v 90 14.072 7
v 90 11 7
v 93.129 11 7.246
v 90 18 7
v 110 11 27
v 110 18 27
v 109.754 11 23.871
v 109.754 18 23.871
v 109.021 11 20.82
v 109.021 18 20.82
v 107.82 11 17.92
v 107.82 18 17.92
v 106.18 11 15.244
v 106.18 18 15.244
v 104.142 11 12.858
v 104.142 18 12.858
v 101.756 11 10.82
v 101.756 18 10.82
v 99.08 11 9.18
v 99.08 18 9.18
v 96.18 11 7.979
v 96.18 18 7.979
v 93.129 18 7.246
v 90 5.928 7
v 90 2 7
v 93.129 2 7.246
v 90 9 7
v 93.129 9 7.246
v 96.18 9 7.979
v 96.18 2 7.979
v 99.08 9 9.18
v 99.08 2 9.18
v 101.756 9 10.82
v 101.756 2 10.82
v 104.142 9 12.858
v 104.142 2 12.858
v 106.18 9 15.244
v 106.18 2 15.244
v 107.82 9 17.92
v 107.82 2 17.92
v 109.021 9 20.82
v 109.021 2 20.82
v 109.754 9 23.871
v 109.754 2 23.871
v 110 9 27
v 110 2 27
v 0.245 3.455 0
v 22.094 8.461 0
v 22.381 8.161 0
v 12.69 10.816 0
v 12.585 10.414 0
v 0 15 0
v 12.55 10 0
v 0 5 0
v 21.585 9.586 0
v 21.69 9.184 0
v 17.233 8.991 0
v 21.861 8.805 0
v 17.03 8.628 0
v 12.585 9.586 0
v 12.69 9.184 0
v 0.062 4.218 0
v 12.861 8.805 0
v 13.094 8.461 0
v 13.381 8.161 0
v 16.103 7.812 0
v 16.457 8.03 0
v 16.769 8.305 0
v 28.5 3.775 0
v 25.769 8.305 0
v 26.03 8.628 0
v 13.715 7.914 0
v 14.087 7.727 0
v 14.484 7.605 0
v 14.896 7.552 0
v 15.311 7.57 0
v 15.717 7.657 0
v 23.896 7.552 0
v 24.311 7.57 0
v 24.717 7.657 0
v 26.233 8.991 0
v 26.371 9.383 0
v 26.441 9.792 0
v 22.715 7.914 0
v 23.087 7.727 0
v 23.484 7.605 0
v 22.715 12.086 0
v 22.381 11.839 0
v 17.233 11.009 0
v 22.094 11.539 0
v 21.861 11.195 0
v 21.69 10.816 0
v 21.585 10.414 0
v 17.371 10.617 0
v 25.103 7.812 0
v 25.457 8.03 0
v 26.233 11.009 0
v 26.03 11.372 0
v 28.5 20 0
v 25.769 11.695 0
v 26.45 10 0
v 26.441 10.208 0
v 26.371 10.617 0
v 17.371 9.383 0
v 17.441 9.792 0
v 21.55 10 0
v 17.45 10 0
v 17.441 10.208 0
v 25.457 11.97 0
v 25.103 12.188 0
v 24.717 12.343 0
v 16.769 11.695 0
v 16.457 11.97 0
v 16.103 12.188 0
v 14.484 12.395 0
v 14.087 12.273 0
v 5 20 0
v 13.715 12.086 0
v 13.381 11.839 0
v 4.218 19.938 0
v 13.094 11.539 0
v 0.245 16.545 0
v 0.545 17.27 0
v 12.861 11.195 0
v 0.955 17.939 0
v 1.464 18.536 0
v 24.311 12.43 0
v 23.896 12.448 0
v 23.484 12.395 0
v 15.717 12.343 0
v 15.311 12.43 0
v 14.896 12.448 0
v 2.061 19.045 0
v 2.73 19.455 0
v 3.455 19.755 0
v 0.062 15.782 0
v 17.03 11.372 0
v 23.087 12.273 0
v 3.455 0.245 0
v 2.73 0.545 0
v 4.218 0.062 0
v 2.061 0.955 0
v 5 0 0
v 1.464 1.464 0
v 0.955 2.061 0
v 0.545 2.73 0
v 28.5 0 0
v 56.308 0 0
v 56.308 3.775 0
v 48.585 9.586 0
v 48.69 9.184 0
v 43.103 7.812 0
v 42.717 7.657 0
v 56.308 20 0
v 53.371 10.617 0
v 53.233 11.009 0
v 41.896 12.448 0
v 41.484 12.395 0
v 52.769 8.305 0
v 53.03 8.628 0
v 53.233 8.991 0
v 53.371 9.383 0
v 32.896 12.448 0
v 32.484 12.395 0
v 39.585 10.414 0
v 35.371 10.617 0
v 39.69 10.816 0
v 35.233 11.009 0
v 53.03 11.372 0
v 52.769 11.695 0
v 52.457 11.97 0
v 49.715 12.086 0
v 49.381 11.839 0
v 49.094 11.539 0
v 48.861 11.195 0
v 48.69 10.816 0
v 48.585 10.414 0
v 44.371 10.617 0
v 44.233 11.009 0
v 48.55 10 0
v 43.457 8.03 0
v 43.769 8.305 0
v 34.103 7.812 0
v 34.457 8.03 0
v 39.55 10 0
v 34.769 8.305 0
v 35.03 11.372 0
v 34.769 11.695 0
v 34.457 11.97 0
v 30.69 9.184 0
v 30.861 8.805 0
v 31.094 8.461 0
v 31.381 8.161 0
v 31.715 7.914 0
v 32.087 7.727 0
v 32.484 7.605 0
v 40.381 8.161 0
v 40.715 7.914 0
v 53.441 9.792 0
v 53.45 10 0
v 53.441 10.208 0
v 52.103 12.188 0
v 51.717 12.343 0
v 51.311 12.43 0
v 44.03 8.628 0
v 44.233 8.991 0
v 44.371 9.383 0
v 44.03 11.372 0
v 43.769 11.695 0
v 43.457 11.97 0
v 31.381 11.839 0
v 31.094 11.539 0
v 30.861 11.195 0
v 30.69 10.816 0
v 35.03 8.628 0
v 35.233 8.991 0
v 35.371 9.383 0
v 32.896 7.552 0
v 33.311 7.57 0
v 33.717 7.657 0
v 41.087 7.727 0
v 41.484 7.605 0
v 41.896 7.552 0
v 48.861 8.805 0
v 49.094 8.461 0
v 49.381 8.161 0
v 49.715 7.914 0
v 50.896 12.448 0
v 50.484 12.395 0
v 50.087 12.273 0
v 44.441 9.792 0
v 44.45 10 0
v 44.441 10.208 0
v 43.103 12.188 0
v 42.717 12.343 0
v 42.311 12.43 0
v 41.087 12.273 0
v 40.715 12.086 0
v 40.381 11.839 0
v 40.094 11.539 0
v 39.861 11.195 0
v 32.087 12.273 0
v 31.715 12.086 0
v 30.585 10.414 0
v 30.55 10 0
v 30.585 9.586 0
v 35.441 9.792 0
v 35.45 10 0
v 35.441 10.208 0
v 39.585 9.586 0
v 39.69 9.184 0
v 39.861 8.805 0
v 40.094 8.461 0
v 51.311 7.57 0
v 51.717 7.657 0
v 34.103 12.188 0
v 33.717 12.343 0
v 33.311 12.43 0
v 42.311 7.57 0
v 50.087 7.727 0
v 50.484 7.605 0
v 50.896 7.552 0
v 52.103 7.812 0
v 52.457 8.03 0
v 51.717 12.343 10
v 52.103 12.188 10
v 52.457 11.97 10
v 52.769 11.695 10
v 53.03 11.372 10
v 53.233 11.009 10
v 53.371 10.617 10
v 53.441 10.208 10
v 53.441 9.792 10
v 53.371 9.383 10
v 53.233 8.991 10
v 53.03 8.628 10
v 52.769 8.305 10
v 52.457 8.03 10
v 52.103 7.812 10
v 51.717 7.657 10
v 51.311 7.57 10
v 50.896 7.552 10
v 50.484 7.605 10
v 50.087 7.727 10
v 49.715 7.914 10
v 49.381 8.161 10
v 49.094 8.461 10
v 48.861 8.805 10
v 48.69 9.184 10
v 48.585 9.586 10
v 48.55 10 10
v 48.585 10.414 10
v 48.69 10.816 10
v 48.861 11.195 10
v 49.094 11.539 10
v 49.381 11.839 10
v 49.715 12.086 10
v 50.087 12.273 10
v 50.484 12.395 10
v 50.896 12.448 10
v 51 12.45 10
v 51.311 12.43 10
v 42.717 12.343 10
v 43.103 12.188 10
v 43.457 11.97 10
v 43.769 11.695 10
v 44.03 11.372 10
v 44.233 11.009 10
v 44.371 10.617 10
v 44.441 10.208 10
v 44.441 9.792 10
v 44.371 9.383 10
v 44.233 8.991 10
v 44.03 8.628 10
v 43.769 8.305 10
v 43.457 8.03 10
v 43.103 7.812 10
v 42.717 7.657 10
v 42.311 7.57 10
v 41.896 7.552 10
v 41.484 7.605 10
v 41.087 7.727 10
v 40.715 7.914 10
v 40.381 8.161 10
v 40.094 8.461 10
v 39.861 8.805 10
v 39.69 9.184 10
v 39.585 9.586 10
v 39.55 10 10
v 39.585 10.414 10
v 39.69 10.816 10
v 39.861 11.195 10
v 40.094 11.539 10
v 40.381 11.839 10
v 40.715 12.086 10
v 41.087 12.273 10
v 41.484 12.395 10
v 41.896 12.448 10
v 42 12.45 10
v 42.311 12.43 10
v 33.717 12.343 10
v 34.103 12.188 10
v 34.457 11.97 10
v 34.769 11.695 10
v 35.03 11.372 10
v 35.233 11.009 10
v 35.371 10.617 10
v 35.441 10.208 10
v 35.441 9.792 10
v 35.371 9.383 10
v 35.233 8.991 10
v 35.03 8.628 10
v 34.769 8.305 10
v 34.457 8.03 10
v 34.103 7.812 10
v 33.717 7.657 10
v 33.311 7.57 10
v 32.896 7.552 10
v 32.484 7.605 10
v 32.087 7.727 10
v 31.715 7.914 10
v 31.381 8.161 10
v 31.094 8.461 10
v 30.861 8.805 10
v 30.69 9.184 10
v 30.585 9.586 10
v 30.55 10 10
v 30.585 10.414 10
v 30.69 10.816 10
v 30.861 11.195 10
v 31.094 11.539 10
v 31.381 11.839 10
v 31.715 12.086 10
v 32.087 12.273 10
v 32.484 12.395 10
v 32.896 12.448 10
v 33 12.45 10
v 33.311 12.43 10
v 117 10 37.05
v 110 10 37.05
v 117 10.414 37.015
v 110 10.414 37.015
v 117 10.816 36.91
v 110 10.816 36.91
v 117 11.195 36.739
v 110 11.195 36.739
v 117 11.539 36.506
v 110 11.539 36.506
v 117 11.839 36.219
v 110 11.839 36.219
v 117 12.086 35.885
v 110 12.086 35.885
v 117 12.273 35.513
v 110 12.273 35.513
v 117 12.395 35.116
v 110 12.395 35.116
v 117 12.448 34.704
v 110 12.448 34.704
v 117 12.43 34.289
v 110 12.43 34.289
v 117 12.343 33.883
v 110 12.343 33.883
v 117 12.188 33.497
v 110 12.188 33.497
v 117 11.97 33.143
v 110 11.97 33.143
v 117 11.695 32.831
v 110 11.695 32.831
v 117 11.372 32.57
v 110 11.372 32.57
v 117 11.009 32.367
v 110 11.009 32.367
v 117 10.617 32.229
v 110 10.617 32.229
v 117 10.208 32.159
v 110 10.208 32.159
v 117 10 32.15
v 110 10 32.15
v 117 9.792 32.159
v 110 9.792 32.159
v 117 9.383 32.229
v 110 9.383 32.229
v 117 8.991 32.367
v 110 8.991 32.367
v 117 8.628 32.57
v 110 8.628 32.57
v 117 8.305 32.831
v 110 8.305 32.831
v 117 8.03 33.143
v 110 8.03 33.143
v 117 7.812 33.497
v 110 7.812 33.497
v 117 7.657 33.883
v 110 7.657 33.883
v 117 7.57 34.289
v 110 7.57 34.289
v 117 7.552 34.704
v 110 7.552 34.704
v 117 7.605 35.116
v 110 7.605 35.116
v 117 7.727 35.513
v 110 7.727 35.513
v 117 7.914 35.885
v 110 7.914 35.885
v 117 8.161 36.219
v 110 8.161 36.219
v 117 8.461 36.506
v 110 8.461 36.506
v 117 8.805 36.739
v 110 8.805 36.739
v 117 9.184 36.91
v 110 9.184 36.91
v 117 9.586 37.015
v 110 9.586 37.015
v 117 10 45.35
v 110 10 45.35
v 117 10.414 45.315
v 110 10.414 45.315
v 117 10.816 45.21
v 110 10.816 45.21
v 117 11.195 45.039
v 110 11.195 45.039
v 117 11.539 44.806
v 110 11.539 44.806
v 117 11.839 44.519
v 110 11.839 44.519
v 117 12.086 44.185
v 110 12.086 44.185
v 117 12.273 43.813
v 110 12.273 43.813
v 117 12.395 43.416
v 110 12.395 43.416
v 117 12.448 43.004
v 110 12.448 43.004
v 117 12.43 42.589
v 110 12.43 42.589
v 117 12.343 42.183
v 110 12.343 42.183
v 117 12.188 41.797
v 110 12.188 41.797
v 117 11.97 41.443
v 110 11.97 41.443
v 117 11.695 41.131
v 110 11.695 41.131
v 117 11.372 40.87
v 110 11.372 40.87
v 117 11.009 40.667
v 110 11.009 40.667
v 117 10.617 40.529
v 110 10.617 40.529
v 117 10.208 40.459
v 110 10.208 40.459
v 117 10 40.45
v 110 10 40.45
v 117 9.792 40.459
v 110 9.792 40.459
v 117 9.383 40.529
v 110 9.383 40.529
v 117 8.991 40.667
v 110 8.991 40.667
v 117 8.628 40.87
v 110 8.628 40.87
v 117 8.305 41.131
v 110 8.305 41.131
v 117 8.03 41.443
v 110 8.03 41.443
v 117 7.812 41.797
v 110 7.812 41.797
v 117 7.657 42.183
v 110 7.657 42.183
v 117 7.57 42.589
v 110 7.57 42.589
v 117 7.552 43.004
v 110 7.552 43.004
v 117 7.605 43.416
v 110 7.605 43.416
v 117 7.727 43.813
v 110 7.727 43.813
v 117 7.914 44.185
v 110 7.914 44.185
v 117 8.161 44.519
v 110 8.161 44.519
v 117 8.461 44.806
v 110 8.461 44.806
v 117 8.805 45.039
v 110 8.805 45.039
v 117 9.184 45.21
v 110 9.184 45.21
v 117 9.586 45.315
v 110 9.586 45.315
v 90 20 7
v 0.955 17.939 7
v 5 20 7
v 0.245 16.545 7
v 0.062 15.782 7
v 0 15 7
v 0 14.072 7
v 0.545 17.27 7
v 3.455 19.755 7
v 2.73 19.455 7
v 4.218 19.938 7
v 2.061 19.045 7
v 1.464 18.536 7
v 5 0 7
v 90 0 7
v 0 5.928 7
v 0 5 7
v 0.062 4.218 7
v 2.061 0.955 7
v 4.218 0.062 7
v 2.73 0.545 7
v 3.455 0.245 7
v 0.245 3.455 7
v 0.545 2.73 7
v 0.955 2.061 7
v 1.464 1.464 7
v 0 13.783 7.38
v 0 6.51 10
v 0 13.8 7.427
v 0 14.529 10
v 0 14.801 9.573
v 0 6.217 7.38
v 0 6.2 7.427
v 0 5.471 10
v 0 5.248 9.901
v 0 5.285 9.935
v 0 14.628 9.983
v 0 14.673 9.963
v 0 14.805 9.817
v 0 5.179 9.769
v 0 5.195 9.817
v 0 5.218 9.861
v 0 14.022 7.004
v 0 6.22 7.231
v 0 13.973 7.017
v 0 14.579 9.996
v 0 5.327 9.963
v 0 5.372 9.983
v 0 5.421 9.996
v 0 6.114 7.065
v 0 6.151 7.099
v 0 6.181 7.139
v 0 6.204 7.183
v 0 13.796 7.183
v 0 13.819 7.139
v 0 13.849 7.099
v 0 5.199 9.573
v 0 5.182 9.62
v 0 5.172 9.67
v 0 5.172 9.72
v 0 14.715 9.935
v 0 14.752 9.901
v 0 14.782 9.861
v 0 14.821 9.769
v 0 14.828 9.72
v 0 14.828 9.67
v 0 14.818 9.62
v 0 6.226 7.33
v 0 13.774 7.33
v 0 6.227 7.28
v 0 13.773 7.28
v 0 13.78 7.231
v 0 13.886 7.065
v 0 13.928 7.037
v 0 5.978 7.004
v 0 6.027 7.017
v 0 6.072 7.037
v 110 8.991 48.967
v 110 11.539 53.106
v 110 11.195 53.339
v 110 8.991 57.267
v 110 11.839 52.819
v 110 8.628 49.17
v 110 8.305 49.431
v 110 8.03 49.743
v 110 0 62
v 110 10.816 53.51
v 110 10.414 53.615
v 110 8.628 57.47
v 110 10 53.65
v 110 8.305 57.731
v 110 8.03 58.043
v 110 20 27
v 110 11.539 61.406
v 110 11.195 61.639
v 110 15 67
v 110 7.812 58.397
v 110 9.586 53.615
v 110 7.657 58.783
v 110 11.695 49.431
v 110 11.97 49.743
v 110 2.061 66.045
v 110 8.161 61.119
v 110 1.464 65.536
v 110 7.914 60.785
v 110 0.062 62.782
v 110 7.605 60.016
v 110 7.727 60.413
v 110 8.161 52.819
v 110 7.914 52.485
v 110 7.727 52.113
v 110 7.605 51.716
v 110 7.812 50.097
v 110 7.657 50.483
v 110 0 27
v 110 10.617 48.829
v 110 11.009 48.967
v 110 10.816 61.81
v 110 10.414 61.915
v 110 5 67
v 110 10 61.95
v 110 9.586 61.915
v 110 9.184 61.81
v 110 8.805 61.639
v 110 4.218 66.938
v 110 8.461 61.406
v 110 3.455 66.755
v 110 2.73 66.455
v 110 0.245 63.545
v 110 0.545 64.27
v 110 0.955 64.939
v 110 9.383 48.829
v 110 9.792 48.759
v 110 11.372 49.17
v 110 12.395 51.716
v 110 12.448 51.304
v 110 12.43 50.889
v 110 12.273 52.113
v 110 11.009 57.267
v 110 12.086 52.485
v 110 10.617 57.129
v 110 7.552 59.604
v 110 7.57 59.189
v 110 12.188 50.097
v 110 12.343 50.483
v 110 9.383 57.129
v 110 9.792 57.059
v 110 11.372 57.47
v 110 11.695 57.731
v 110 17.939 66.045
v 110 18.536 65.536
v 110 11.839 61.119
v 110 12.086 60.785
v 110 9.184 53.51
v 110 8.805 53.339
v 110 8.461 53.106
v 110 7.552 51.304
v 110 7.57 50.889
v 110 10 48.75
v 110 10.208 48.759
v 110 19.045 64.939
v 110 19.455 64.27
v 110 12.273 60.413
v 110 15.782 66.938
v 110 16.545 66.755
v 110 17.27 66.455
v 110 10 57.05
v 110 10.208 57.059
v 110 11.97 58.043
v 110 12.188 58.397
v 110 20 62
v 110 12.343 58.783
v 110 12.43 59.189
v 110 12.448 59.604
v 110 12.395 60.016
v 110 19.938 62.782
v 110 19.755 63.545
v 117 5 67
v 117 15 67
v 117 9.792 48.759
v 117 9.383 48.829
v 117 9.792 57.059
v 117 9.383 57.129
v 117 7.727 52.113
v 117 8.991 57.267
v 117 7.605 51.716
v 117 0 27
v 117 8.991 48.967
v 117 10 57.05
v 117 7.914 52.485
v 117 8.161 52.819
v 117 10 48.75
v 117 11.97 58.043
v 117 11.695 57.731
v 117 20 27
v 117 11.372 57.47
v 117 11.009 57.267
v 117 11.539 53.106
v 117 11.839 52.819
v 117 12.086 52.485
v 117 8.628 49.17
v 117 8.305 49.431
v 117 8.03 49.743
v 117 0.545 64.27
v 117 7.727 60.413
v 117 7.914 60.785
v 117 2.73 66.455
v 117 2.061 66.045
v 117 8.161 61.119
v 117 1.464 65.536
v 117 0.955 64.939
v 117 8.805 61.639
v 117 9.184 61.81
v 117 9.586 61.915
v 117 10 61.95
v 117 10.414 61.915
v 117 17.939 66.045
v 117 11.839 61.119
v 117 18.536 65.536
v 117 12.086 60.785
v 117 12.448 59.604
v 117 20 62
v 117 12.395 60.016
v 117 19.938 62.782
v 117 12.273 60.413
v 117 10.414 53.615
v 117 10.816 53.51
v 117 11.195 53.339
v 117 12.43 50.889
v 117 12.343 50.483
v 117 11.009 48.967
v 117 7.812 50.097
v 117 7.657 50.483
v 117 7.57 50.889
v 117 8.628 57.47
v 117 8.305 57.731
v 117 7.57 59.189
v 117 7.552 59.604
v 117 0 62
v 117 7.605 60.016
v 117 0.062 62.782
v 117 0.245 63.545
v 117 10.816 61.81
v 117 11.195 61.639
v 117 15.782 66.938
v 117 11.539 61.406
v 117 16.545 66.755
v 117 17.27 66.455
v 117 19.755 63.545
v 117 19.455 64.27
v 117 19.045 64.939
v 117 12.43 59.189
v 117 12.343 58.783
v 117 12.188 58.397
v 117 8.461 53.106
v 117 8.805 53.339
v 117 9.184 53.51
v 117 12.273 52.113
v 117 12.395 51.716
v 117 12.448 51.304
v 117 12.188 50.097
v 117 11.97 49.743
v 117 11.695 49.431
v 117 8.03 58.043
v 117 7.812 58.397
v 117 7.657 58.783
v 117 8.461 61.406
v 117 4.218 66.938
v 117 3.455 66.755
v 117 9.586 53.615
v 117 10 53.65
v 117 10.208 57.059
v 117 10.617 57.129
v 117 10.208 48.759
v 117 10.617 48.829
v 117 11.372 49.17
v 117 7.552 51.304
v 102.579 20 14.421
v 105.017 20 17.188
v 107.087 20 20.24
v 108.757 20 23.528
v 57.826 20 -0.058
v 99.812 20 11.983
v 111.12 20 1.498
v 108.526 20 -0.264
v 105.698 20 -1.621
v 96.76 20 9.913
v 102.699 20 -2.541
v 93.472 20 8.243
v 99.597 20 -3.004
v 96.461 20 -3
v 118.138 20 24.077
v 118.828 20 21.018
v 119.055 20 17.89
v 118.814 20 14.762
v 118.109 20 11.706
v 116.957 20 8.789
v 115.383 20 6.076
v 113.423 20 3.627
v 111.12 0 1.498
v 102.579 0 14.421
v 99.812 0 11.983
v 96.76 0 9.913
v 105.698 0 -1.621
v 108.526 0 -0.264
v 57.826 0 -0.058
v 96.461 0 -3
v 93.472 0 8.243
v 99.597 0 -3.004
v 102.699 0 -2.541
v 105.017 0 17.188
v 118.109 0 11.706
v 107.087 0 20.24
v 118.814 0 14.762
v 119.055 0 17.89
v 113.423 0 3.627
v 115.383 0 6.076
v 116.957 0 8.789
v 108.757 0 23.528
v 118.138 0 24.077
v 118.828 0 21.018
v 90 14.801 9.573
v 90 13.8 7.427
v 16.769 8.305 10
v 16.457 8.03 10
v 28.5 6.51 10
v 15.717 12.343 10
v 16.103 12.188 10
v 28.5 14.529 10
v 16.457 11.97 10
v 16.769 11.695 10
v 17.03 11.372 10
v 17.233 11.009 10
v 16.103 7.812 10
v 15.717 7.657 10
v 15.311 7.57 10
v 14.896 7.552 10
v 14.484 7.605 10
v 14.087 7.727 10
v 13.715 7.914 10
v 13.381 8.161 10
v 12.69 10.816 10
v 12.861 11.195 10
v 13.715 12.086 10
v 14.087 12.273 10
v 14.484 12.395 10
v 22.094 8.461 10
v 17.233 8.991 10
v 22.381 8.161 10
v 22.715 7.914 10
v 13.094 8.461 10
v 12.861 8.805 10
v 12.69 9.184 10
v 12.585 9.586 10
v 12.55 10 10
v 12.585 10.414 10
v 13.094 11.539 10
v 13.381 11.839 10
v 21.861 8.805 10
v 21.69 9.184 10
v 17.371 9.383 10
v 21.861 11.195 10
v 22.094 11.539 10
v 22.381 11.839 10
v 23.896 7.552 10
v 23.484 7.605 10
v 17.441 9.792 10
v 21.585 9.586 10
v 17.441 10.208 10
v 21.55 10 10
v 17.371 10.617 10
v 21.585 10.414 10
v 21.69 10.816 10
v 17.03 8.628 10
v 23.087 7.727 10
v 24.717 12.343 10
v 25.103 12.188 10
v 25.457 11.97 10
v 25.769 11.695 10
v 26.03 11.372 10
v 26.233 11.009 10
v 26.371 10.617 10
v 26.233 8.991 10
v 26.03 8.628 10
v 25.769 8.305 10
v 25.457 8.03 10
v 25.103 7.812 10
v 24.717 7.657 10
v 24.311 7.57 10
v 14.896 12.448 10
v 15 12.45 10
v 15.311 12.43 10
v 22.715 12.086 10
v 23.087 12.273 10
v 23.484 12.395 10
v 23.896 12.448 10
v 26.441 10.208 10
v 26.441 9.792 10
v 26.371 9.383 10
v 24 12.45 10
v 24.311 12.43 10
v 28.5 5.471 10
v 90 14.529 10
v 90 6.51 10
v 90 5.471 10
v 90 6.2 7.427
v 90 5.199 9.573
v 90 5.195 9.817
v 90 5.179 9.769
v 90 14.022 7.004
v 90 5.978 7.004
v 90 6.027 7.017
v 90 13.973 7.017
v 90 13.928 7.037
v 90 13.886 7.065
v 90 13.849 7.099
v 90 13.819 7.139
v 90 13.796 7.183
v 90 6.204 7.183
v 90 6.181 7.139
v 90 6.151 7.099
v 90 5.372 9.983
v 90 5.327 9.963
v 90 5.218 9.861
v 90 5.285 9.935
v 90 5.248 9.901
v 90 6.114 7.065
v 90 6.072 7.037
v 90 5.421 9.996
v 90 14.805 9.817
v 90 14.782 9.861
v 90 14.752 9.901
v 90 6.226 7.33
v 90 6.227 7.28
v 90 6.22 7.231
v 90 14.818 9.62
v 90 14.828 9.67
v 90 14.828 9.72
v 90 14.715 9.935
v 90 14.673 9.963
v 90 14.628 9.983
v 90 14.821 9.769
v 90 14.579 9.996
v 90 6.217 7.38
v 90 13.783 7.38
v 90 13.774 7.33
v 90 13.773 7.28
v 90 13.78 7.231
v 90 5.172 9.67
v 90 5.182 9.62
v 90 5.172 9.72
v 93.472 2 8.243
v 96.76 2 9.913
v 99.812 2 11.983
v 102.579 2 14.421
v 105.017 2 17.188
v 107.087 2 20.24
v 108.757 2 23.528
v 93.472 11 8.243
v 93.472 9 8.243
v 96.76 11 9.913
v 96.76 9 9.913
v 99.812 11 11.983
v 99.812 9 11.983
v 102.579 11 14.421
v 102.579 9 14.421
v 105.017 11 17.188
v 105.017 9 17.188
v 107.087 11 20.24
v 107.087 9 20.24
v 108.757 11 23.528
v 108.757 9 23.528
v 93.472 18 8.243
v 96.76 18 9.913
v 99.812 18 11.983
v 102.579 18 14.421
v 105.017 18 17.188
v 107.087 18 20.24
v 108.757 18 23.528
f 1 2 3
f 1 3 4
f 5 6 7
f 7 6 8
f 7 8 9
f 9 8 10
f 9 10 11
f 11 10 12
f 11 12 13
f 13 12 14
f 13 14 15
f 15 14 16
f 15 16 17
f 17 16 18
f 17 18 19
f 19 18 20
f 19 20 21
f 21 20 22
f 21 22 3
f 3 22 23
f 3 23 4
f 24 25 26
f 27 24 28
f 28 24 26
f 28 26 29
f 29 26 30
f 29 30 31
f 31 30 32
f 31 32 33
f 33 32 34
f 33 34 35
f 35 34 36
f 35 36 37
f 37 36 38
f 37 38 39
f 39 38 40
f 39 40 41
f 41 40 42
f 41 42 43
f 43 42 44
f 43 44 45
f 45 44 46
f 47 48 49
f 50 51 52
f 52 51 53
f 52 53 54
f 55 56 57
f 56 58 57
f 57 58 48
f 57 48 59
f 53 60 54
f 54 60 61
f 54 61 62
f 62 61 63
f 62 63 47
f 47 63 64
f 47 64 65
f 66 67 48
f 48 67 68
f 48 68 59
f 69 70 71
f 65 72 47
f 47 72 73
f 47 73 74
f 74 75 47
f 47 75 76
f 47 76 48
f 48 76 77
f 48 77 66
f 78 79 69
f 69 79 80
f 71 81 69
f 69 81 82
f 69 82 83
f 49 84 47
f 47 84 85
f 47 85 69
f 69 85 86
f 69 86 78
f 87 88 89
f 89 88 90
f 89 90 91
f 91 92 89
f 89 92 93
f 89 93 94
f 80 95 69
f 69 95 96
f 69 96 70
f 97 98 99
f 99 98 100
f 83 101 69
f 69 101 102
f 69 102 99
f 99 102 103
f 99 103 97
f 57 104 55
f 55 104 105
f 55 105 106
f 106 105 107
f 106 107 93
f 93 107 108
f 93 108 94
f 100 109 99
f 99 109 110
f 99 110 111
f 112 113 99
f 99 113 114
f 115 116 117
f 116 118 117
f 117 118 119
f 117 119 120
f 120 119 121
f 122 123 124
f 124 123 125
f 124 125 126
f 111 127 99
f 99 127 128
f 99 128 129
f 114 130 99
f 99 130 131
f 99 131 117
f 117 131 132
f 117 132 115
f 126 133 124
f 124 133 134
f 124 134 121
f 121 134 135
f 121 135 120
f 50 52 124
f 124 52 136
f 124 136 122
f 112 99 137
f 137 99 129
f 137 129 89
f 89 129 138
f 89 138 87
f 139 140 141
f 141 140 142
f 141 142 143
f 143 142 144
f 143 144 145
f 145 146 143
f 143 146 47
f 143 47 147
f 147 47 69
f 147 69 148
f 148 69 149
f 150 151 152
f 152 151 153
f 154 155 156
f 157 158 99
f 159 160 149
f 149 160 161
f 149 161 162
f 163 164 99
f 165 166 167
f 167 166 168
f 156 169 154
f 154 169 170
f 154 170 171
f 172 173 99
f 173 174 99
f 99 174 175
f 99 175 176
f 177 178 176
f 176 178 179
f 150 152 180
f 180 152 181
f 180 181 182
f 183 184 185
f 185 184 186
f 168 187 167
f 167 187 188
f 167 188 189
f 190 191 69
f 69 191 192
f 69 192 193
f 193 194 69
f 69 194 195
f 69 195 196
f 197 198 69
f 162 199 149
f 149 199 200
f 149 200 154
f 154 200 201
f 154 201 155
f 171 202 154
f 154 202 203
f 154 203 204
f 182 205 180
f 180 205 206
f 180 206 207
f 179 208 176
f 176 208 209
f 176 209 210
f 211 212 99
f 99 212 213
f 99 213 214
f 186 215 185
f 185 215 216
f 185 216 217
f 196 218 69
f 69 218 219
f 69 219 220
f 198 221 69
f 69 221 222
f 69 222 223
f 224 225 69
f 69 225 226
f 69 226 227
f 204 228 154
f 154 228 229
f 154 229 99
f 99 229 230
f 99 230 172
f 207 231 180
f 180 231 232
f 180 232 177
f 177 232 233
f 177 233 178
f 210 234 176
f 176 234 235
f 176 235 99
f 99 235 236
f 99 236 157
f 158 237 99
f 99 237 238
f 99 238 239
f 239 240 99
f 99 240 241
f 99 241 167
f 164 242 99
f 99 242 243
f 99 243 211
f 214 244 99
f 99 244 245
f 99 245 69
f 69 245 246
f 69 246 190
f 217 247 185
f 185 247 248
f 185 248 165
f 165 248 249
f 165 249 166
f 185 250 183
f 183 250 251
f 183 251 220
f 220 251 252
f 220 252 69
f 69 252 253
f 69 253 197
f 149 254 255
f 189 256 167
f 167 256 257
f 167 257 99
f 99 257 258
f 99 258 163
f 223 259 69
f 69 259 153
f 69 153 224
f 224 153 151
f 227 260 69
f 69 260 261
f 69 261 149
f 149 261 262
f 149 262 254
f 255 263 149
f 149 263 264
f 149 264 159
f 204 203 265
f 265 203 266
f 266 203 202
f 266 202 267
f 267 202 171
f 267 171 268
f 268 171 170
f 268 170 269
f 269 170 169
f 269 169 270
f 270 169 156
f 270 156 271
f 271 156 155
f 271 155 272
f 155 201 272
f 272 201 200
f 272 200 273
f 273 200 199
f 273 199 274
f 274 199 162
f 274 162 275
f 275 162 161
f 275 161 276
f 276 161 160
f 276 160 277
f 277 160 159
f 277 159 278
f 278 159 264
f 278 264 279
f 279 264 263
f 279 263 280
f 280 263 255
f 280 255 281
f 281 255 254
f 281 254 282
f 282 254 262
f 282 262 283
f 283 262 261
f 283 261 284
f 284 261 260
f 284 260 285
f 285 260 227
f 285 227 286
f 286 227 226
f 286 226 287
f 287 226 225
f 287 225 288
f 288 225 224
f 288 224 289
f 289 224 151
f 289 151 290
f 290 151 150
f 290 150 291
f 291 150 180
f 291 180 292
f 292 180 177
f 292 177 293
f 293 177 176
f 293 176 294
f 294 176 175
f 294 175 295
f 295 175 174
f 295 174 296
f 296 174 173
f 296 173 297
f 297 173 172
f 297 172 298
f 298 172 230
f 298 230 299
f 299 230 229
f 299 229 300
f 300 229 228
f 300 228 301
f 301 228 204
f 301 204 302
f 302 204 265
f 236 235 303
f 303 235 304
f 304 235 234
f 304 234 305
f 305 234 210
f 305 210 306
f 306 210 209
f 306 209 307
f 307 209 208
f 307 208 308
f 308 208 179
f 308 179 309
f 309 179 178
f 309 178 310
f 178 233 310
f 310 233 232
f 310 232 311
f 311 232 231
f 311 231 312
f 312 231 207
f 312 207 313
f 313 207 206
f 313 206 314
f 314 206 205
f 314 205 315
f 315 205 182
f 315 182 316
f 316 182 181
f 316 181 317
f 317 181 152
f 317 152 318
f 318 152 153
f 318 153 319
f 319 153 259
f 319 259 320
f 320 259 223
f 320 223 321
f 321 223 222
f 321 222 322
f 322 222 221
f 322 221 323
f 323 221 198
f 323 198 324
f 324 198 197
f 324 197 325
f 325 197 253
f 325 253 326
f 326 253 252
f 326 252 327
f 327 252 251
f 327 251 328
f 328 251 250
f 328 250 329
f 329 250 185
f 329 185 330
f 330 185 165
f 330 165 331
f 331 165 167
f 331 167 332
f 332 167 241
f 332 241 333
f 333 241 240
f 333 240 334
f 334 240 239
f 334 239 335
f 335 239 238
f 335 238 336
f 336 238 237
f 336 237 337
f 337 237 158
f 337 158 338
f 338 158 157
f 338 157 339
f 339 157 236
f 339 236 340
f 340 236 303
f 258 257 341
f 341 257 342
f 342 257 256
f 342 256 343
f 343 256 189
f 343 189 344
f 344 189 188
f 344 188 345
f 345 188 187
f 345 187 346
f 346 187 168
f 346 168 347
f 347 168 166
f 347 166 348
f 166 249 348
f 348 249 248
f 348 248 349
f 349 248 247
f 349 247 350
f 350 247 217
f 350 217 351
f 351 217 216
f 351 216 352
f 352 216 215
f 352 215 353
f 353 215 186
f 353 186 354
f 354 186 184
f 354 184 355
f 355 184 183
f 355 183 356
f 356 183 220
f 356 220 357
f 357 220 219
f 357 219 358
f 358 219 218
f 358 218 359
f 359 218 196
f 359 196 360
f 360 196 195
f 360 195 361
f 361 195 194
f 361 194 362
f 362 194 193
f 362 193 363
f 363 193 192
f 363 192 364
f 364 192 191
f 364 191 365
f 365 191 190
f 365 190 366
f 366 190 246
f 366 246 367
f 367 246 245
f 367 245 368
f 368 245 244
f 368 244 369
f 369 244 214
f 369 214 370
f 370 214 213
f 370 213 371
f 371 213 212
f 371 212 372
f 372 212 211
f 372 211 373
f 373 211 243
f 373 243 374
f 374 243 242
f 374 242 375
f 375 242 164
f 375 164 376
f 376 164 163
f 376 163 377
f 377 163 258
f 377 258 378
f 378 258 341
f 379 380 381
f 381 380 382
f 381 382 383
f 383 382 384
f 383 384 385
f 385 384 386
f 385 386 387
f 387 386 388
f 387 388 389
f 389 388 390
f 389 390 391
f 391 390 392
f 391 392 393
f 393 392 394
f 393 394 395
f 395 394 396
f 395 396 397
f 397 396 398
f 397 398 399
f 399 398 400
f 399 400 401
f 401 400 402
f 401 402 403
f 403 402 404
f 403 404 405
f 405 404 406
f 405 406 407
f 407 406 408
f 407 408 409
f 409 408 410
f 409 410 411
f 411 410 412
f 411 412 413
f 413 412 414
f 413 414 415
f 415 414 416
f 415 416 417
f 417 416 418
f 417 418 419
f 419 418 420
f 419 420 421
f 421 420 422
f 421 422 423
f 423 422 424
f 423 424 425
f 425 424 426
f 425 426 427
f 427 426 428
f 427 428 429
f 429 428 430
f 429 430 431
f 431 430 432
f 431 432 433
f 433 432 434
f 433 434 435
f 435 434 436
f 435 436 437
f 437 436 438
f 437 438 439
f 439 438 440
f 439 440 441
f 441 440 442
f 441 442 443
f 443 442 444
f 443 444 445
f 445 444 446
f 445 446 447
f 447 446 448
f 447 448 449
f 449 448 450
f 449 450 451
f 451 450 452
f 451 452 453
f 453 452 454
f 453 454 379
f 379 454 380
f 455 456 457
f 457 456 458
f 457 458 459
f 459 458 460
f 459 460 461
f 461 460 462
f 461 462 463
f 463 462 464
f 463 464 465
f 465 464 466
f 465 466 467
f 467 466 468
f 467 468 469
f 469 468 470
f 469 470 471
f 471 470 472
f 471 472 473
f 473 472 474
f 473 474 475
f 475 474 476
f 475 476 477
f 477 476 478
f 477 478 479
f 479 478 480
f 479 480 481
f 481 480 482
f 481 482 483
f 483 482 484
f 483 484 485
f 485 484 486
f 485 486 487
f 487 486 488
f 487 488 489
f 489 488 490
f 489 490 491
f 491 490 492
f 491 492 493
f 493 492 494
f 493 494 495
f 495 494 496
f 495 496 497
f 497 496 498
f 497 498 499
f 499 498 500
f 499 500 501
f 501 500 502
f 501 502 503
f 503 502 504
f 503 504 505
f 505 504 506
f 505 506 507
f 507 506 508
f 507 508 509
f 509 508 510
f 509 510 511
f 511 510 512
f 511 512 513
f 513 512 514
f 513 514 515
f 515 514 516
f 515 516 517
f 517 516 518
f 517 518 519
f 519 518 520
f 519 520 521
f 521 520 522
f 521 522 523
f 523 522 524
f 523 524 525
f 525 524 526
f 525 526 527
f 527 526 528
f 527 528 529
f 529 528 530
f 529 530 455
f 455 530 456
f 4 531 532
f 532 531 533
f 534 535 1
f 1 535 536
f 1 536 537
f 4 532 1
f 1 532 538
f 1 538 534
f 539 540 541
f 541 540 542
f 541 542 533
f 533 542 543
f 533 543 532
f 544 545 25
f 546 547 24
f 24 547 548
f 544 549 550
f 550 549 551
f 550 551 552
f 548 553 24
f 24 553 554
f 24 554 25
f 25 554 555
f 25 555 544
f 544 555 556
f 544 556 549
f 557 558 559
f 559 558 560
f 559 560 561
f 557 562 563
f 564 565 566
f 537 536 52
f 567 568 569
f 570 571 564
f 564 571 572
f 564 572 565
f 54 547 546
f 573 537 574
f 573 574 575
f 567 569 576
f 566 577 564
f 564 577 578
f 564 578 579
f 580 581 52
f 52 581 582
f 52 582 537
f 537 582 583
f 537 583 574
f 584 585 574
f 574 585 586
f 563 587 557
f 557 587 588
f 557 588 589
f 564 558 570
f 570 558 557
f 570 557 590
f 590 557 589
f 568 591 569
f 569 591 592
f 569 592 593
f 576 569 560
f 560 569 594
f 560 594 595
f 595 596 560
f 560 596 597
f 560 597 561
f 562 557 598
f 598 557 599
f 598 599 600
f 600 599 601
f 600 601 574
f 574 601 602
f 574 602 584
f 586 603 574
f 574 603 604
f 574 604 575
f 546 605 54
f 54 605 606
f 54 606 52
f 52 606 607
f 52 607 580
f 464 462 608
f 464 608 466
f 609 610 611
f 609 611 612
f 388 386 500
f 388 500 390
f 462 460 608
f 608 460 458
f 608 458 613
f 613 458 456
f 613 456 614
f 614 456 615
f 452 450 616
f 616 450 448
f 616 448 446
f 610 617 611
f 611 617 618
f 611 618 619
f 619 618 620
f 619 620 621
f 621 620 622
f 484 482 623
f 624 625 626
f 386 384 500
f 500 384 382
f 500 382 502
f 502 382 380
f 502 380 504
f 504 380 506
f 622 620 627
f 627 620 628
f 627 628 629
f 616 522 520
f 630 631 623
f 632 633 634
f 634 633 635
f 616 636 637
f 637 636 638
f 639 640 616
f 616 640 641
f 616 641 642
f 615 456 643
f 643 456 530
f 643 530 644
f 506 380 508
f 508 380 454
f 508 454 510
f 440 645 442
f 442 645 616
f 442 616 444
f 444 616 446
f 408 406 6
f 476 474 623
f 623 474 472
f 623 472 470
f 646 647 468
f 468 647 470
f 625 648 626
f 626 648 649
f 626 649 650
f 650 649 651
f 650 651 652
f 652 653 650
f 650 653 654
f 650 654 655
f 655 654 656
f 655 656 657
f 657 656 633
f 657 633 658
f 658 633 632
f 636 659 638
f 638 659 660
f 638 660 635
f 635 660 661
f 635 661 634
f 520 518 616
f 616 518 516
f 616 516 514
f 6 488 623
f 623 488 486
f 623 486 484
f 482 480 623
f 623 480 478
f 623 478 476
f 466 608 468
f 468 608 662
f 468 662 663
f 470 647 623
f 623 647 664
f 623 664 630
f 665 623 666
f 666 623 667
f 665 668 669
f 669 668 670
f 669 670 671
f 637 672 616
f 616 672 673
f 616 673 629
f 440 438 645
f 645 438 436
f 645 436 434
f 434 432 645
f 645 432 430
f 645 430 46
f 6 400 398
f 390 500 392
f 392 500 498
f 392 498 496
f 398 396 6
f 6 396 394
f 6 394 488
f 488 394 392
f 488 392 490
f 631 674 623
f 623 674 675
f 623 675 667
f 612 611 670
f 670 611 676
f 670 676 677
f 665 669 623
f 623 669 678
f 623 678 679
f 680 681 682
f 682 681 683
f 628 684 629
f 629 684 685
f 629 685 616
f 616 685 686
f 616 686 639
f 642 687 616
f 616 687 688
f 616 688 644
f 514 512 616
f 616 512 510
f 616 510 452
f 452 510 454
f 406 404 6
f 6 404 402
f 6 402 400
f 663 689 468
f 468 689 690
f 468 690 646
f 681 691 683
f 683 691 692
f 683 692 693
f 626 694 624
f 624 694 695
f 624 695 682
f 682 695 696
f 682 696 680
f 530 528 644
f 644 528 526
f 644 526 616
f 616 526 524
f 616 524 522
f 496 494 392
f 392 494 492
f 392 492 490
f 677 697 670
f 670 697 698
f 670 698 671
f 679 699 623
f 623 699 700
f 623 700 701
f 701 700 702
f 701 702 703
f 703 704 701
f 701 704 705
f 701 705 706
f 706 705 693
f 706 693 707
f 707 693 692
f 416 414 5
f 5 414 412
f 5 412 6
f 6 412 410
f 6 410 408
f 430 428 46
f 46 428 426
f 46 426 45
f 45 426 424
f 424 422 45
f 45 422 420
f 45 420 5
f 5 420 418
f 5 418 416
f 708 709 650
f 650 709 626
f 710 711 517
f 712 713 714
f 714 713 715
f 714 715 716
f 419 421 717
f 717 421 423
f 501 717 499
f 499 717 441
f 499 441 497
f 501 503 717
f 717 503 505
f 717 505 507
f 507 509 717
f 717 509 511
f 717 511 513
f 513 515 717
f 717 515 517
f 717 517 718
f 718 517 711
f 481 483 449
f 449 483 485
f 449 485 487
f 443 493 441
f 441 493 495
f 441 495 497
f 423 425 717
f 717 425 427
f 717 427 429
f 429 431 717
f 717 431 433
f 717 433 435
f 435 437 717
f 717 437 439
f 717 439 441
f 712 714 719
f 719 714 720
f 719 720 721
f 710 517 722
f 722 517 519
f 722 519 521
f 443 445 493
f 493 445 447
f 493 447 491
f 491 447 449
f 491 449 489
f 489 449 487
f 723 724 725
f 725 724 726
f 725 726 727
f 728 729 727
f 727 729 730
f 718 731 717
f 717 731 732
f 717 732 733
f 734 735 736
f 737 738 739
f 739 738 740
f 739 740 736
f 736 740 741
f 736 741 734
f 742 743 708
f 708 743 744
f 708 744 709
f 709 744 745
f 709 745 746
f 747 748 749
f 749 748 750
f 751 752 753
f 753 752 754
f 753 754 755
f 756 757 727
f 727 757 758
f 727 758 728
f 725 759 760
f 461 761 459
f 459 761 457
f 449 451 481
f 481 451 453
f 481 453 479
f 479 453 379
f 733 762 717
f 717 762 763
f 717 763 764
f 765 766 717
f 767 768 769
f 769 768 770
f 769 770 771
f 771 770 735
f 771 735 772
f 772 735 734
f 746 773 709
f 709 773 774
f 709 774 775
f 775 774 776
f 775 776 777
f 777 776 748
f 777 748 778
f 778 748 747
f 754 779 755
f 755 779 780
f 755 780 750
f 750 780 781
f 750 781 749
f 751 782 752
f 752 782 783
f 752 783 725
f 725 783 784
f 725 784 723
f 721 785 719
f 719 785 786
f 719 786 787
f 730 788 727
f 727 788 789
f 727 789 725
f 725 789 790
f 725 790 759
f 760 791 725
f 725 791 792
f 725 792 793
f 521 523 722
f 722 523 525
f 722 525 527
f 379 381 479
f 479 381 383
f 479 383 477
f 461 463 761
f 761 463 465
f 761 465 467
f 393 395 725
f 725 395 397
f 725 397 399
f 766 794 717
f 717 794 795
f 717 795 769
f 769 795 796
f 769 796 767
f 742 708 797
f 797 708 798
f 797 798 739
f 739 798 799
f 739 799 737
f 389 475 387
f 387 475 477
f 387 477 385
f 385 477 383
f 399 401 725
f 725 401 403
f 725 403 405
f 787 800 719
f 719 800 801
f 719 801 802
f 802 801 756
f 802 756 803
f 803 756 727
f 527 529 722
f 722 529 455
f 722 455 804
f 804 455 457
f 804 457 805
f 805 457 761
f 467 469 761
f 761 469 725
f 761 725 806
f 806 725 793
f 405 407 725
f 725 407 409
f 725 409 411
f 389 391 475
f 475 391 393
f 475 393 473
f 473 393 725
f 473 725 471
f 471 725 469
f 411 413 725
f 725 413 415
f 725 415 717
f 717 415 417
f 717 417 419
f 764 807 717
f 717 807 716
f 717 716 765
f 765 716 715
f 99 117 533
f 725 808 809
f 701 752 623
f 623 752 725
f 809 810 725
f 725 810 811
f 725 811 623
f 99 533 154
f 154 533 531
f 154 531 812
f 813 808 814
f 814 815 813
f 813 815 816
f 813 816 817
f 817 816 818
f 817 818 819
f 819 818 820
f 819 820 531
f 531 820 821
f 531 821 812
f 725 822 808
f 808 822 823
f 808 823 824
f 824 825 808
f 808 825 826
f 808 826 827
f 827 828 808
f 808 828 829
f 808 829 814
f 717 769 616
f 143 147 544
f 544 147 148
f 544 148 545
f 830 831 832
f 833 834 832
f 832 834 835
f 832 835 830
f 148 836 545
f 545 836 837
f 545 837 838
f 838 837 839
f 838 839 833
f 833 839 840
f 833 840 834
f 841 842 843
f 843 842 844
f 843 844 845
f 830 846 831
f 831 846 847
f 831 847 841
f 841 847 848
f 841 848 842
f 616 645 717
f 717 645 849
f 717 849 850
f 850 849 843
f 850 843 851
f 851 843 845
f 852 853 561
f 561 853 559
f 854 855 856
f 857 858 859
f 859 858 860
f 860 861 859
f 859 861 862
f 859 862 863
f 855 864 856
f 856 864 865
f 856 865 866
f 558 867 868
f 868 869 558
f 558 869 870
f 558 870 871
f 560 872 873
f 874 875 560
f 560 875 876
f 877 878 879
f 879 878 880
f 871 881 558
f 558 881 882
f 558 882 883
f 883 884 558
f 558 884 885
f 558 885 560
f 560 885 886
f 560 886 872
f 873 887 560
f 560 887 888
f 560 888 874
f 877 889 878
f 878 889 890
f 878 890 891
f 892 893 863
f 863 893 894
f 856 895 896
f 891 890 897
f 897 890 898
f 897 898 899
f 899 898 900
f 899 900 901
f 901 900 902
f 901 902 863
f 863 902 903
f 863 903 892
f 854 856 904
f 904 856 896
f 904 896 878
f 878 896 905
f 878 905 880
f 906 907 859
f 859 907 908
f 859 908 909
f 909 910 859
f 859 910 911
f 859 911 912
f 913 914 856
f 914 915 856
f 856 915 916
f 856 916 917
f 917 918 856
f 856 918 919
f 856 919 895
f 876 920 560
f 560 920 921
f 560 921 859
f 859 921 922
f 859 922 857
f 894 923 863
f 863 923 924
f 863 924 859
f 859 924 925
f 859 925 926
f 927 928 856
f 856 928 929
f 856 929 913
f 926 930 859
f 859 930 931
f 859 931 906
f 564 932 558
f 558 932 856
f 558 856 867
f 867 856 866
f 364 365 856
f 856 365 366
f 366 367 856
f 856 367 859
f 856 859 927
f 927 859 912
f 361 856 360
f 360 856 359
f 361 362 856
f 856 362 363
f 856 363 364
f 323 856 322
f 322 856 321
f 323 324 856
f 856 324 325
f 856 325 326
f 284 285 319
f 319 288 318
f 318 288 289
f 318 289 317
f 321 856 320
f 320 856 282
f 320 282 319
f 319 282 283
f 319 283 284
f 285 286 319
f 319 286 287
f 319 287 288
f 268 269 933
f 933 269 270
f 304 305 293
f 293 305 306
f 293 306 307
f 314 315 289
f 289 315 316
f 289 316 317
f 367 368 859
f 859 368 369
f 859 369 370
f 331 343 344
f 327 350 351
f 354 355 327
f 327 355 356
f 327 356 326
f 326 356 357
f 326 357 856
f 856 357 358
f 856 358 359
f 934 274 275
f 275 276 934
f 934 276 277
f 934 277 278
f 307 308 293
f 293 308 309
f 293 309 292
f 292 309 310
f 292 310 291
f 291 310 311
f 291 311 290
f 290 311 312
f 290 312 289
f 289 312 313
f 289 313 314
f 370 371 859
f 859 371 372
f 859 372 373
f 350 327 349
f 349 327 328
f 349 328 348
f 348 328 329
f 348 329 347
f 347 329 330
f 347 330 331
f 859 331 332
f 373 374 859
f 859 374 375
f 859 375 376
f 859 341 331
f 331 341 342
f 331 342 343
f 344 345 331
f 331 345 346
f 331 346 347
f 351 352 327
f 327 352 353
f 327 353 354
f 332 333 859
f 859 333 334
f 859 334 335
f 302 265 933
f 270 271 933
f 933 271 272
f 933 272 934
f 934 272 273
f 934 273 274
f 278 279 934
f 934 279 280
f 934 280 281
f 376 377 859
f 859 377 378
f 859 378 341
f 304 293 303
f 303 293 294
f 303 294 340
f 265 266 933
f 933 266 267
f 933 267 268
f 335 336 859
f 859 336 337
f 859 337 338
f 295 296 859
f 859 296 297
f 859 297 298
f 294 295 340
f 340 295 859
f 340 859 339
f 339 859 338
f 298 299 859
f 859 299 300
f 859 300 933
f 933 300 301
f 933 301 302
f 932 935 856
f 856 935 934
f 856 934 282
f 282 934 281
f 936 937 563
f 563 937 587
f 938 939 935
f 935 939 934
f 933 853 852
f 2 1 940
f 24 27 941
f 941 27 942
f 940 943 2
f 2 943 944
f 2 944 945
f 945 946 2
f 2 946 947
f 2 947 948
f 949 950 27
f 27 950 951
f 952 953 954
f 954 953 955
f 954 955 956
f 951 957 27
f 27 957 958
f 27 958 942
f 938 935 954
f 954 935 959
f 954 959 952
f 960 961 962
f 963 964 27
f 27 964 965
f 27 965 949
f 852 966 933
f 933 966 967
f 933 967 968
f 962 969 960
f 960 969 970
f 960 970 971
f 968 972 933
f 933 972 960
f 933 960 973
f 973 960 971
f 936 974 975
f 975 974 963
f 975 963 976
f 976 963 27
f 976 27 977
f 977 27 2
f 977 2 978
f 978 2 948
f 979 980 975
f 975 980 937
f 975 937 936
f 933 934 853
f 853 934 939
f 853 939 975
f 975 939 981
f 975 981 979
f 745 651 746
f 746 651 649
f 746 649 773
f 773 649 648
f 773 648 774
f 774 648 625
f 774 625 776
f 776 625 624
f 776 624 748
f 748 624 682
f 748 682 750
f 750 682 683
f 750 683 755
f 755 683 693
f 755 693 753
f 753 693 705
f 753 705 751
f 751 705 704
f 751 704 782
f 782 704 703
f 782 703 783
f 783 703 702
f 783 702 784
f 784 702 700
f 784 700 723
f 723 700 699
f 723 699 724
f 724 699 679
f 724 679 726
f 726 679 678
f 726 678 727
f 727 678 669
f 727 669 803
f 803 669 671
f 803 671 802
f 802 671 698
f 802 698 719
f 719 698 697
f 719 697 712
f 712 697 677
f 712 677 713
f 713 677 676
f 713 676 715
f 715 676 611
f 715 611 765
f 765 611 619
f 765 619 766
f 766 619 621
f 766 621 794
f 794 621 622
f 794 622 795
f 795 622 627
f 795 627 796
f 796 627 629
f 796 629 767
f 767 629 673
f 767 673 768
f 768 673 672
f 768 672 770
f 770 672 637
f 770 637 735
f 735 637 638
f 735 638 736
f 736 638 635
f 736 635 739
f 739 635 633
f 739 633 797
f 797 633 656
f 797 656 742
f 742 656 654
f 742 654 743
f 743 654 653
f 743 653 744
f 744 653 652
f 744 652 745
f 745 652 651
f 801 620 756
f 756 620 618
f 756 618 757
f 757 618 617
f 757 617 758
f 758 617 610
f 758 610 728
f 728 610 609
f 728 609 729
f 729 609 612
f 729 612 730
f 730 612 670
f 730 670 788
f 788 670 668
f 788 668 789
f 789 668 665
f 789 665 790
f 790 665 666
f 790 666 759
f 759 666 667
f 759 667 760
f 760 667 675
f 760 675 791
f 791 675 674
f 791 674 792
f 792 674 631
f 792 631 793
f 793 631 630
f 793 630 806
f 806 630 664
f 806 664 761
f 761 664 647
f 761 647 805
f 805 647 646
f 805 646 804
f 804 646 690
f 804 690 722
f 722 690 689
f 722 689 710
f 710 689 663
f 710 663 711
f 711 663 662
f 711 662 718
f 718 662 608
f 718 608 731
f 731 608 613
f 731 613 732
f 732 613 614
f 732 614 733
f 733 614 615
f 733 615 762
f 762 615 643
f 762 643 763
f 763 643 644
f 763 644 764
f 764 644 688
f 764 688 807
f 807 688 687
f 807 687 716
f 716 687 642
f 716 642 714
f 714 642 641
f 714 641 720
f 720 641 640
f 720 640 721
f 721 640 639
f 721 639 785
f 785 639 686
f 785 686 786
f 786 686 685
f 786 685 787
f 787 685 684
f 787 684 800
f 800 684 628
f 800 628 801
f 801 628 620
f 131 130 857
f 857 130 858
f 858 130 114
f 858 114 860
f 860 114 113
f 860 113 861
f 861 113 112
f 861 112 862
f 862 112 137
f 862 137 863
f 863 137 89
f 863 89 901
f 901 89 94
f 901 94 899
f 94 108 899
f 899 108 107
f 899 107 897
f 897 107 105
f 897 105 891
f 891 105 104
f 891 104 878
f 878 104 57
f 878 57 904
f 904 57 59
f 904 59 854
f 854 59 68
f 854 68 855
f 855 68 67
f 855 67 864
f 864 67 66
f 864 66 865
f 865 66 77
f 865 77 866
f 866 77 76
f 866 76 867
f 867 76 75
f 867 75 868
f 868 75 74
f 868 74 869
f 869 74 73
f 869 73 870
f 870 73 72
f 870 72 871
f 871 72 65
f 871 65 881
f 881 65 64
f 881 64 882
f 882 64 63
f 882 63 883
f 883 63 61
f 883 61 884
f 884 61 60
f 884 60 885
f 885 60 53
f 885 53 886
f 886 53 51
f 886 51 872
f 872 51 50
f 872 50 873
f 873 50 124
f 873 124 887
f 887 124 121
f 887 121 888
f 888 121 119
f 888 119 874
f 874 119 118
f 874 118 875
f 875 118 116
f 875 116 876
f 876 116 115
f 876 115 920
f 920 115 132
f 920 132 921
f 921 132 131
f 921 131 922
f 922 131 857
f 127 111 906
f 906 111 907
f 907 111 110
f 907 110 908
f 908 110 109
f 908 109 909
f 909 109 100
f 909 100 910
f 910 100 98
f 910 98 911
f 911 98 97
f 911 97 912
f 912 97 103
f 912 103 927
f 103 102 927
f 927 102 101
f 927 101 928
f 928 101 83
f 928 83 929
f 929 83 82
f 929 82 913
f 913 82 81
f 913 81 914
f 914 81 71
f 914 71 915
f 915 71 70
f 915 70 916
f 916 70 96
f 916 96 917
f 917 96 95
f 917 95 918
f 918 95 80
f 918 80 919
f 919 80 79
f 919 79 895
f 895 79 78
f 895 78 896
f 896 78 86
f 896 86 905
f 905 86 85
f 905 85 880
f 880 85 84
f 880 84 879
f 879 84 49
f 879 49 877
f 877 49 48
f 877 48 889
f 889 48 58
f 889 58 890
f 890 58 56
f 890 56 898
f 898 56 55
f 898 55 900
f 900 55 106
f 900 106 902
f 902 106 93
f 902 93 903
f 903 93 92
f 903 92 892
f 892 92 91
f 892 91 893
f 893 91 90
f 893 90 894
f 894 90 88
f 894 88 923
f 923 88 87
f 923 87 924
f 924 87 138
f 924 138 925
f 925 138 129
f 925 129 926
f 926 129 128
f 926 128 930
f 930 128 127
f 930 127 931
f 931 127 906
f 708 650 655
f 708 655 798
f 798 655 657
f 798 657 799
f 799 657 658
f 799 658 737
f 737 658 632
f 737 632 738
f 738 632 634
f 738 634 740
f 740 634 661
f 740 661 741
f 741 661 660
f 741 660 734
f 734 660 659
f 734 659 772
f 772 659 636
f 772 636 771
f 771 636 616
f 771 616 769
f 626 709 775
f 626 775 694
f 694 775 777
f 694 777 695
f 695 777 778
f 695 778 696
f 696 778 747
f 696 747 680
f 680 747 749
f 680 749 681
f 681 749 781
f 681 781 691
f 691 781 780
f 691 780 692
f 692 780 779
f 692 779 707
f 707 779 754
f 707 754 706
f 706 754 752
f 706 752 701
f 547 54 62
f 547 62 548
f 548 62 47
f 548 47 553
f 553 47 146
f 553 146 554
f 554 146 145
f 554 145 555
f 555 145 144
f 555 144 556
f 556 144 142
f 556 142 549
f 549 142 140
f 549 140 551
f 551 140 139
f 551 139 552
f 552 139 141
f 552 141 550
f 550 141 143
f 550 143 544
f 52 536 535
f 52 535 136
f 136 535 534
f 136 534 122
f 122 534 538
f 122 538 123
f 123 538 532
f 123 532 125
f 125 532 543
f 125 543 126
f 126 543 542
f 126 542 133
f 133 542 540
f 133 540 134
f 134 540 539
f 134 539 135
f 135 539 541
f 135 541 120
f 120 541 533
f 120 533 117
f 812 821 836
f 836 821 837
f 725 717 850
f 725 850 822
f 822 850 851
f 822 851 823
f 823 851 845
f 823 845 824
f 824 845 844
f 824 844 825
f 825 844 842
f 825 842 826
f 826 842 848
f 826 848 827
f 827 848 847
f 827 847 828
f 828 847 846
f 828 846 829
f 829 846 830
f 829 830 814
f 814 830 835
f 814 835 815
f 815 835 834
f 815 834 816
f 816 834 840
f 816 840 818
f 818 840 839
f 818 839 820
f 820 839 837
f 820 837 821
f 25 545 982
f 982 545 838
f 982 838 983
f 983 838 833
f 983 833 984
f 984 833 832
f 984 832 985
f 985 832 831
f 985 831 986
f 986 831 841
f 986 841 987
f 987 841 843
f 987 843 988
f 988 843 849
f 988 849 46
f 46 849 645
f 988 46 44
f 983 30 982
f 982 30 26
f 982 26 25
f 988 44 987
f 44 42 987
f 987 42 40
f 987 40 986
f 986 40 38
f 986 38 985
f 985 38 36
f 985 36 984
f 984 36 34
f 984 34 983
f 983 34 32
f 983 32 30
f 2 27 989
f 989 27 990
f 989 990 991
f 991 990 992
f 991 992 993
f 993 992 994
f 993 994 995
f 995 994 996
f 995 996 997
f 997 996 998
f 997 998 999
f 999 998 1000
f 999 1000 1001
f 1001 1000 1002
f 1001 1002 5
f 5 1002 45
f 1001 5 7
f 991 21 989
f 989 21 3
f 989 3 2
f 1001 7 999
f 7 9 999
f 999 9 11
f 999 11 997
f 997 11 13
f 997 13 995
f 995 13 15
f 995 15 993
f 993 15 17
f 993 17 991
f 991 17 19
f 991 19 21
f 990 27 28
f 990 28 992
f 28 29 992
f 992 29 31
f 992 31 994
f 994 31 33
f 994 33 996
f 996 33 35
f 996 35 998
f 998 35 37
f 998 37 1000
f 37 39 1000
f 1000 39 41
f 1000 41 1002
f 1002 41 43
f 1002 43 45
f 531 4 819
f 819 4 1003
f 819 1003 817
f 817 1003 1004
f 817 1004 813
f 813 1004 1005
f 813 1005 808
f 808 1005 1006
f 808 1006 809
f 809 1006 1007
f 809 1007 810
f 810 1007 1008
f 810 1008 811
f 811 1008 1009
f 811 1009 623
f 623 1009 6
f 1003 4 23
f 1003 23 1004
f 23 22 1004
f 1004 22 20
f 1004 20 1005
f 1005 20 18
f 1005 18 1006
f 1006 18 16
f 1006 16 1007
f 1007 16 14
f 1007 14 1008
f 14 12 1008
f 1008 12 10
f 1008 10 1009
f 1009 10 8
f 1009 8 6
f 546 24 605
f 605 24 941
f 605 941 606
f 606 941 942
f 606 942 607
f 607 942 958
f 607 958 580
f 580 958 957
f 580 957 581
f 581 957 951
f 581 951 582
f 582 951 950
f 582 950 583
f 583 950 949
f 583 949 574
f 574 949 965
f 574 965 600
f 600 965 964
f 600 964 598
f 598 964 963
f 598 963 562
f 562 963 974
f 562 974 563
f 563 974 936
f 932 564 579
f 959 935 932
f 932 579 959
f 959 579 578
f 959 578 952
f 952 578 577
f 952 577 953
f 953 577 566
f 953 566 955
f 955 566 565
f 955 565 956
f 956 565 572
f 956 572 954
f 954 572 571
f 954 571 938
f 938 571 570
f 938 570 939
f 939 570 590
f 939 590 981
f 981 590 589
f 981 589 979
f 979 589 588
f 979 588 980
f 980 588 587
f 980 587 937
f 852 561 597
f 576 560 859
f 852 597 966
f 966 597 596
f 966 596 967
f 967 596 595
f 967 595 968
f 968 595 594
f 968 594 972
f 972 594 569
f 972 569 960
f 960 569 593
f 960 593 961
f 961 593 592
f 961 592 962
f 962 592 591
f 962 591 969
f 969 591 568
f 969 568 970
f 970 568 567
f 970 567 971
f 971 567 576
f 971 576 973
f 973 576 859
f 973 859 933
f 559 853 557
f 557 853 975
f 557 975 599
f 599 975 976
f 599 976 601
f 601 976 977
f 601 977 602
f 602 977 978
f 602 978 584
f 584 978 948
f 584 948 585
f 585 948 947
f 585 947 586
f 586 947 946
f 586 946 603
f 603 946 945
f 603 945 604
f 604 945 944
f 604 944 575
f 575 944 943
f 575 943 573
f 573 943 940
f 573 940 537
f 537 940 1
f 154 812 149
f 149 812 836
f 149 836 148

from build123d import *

# Parameters (mm, degrees)
BOSS_EXTRUDE1_DEPTH = 20
BOSS_EXTRUDE2_DEPTH = 90
SKETCH4_R           = 2.45
CUT_EXTRUDE1_DEPTH  = 137.301137193
LPATTERN1_COUNT     = 4
LPATTERN1_PITCH     = 8.3
SKETCH5_R           = 2.45
CUT_EXTRUDE2_DEPTH  = 14
LPATTERN2_COUNT     = 5
LPATTERN2_PITCH     = 9
FILLET2_R           = 5
BOSS_EXTRUDE4_DEPTH = 20
BOSS_EXTRUDE5_DEPTH = 2
LPATTERN3_COUNT     = 3
LPATTERN3_PITCH     = 9
FILLET3_R           = 0.3
FILLET4_R           = 20


with BuildPart() as part:
    # Sketch1 → Boss-Extrude1 (new body)
    with BuildSketch(Plane(origin=(0, 0, 0), x_dir=(1, 0, 0), z_dir=(0, 1, 0))):
        with BuildLine():
            Line((0, 0), (90, 0))
            ThreePointArc((90, 0), (109.091883092, -7.908116908), (117, -27))
            Line((117, -27), (117, -67))
            Line((117, -67), (110, -67))
            Line((110, -67), (110, -27))
            ThreePointArc((110, -27), (104.142135624, -12.857864376), (90, -7))
            Line((90, -7), (0, -7))
            Line((0, -7), (0, 0))
        make_face()
    extrude(amount=BOSS_EXTRUDE1_DEPTH)

    # Sketch2 → Boss-Extrude2 (add)
    with BuildSketch(Plane(origin=(0, 0, 0), x_dir=(0, 0, -1), z_dir=(1, 0, 0))):
        Polygon((-10, 15), (-10, 5), (-7, 6.398922974), (-7, 13.601077026), align=None)
    extrude(amount=BOSS_EXTRUDE2_DEPTH)

    # Sketch4 → Cut-Extrude1 (cut, through all)
    with BuildSketch(Plane(origin=(0, 0, 0), x_dir=(0, 0, -1), z_dir=(1, 0, 0))):
        with Locations(Location((-59.5, 10, 0), (0, 0, 180))):
            Circle(SKETCH4_R)
    cut_extrude1 = extrude(amount=CUT_EXTRUDE1_DEPTH, mode=Mode.SUBTRACT)

    # LPattern1: Cut-Extrude1 ×4
    with Locations(*[(0, 0, -i * LPATTERN1_PITCH) for i in range(1, LPATTERN1_COUNT)]):
        add(cut_extrude1, mode=Mode.SUBTRACT)

    # Sketch5 → Cut-Extrude2 (cut)
    with BuildSketch(Plane.XY):
        with Locations(Location((15, 10, 0), (0, 0, 90))):
            Circle(SKETCH5_R)
    cut_extrude2 = extrude(amount=CUT_EXTRUDE2_DEPTH, mode=Mode.SUBTRACT)

    # LPattern2: Cut-Extrude2 ×5
    with Locations(*[(i * LPATTERN2_PITCH, 0, 0) for i in range(1, LPATTERN2_COUNT)]):
        add(cut_extrude2, mode=Mode.SUBTRACT)

    # Fillet2
    fillet2_edges = [part.edges().sort_by_distance(p)[0] for p in [
        (0, 0, 3.5),
        (113.5, 20, 67),
        (0, 20, 3.5),
        (113.5, 0, 67),
    ]]
    fillet(fillet2_edges, radius=FILLET2_R)

    # Sketch6 → Boss-Extrude4 (add)
    with BuildSketch(Plane(origin=(0, 0, 0), x_dir=(1, 0, 0), z_dir=(0, 1, 0))):
        with BuildLine():
            Line((57.067989457, 0), (96.460545107, 3))
            ThreePointArc((96.460545107, 3), (115.383129249, -6.075834674), (117, -27))
            ThreePointArc((117, -27), (109.091883092, -7.908116908), (90, 0))
            Line((90, 0), (57.067989457, 0))
        make_face()
    extrude(amount=BOSS_EXTRUDE4_DEPTH)

    # Sketch8 → Boss-Extrude5 (add)
    with BuildSketch(Plane(origin=(0, 0, 0), x_dir=(1, 0, 0), z_dir=(0, 1, 0))):
        with BuildLine():
            ThreePointArc((90, -7), (102.578584062, -14.421415938), (110, -27))
            ThreePointArc((110, -27), (104.142135624, -12.857864376), (90, -7))
        make_face()
    boss_extrude5 = extrude(amount=BOSS_EXTRUDE5_DEPTH)

    # LPattern3: Boss-Extrude5 ×3
    with Locations(*[(0, i * LPATTERN3_PITCH, 0) for i in range(1, LPATTERN3_COUNT)]):
        add(boss_extrude5)

    # Fillet3
    fillet3_edges = [part.edges().sort_by_distance(p)[0] for p in [
        (45, 13.601077026, 7),
        (45, 15, 10),
        (45, 5, 10),
        (45, 6.398922974, 7),
    ]]
    fillet(fillet3_edges, radius=FILLET3_R)

    # Fillet4
    # the kernel refuses this fillet: 20 mm, written as the material it adds along each edge
    with BuildSketch(Plane(origin=(57.067989457, 0, 0), x_dir=(0.9971126456779296, 0, -0.07593663035162816), z_dir=(0, 1, 0))) as fillet4_piece_1:
        with BuildLine():
            CenterArc((FILLET4_R * 0.0380232084134, FILLET4_R), FILLET4_R, 265.644959248, 4.355040752)
            Line((-FILLET4_R * 0.0379134219382, FILLET4_R * 0.00288735432207), (0, 0))
            Line((0, 0), (FILLET4_R * 0.0380232084134, 0))
        make_face()
    extrude(amount=20)


solid = part.part
